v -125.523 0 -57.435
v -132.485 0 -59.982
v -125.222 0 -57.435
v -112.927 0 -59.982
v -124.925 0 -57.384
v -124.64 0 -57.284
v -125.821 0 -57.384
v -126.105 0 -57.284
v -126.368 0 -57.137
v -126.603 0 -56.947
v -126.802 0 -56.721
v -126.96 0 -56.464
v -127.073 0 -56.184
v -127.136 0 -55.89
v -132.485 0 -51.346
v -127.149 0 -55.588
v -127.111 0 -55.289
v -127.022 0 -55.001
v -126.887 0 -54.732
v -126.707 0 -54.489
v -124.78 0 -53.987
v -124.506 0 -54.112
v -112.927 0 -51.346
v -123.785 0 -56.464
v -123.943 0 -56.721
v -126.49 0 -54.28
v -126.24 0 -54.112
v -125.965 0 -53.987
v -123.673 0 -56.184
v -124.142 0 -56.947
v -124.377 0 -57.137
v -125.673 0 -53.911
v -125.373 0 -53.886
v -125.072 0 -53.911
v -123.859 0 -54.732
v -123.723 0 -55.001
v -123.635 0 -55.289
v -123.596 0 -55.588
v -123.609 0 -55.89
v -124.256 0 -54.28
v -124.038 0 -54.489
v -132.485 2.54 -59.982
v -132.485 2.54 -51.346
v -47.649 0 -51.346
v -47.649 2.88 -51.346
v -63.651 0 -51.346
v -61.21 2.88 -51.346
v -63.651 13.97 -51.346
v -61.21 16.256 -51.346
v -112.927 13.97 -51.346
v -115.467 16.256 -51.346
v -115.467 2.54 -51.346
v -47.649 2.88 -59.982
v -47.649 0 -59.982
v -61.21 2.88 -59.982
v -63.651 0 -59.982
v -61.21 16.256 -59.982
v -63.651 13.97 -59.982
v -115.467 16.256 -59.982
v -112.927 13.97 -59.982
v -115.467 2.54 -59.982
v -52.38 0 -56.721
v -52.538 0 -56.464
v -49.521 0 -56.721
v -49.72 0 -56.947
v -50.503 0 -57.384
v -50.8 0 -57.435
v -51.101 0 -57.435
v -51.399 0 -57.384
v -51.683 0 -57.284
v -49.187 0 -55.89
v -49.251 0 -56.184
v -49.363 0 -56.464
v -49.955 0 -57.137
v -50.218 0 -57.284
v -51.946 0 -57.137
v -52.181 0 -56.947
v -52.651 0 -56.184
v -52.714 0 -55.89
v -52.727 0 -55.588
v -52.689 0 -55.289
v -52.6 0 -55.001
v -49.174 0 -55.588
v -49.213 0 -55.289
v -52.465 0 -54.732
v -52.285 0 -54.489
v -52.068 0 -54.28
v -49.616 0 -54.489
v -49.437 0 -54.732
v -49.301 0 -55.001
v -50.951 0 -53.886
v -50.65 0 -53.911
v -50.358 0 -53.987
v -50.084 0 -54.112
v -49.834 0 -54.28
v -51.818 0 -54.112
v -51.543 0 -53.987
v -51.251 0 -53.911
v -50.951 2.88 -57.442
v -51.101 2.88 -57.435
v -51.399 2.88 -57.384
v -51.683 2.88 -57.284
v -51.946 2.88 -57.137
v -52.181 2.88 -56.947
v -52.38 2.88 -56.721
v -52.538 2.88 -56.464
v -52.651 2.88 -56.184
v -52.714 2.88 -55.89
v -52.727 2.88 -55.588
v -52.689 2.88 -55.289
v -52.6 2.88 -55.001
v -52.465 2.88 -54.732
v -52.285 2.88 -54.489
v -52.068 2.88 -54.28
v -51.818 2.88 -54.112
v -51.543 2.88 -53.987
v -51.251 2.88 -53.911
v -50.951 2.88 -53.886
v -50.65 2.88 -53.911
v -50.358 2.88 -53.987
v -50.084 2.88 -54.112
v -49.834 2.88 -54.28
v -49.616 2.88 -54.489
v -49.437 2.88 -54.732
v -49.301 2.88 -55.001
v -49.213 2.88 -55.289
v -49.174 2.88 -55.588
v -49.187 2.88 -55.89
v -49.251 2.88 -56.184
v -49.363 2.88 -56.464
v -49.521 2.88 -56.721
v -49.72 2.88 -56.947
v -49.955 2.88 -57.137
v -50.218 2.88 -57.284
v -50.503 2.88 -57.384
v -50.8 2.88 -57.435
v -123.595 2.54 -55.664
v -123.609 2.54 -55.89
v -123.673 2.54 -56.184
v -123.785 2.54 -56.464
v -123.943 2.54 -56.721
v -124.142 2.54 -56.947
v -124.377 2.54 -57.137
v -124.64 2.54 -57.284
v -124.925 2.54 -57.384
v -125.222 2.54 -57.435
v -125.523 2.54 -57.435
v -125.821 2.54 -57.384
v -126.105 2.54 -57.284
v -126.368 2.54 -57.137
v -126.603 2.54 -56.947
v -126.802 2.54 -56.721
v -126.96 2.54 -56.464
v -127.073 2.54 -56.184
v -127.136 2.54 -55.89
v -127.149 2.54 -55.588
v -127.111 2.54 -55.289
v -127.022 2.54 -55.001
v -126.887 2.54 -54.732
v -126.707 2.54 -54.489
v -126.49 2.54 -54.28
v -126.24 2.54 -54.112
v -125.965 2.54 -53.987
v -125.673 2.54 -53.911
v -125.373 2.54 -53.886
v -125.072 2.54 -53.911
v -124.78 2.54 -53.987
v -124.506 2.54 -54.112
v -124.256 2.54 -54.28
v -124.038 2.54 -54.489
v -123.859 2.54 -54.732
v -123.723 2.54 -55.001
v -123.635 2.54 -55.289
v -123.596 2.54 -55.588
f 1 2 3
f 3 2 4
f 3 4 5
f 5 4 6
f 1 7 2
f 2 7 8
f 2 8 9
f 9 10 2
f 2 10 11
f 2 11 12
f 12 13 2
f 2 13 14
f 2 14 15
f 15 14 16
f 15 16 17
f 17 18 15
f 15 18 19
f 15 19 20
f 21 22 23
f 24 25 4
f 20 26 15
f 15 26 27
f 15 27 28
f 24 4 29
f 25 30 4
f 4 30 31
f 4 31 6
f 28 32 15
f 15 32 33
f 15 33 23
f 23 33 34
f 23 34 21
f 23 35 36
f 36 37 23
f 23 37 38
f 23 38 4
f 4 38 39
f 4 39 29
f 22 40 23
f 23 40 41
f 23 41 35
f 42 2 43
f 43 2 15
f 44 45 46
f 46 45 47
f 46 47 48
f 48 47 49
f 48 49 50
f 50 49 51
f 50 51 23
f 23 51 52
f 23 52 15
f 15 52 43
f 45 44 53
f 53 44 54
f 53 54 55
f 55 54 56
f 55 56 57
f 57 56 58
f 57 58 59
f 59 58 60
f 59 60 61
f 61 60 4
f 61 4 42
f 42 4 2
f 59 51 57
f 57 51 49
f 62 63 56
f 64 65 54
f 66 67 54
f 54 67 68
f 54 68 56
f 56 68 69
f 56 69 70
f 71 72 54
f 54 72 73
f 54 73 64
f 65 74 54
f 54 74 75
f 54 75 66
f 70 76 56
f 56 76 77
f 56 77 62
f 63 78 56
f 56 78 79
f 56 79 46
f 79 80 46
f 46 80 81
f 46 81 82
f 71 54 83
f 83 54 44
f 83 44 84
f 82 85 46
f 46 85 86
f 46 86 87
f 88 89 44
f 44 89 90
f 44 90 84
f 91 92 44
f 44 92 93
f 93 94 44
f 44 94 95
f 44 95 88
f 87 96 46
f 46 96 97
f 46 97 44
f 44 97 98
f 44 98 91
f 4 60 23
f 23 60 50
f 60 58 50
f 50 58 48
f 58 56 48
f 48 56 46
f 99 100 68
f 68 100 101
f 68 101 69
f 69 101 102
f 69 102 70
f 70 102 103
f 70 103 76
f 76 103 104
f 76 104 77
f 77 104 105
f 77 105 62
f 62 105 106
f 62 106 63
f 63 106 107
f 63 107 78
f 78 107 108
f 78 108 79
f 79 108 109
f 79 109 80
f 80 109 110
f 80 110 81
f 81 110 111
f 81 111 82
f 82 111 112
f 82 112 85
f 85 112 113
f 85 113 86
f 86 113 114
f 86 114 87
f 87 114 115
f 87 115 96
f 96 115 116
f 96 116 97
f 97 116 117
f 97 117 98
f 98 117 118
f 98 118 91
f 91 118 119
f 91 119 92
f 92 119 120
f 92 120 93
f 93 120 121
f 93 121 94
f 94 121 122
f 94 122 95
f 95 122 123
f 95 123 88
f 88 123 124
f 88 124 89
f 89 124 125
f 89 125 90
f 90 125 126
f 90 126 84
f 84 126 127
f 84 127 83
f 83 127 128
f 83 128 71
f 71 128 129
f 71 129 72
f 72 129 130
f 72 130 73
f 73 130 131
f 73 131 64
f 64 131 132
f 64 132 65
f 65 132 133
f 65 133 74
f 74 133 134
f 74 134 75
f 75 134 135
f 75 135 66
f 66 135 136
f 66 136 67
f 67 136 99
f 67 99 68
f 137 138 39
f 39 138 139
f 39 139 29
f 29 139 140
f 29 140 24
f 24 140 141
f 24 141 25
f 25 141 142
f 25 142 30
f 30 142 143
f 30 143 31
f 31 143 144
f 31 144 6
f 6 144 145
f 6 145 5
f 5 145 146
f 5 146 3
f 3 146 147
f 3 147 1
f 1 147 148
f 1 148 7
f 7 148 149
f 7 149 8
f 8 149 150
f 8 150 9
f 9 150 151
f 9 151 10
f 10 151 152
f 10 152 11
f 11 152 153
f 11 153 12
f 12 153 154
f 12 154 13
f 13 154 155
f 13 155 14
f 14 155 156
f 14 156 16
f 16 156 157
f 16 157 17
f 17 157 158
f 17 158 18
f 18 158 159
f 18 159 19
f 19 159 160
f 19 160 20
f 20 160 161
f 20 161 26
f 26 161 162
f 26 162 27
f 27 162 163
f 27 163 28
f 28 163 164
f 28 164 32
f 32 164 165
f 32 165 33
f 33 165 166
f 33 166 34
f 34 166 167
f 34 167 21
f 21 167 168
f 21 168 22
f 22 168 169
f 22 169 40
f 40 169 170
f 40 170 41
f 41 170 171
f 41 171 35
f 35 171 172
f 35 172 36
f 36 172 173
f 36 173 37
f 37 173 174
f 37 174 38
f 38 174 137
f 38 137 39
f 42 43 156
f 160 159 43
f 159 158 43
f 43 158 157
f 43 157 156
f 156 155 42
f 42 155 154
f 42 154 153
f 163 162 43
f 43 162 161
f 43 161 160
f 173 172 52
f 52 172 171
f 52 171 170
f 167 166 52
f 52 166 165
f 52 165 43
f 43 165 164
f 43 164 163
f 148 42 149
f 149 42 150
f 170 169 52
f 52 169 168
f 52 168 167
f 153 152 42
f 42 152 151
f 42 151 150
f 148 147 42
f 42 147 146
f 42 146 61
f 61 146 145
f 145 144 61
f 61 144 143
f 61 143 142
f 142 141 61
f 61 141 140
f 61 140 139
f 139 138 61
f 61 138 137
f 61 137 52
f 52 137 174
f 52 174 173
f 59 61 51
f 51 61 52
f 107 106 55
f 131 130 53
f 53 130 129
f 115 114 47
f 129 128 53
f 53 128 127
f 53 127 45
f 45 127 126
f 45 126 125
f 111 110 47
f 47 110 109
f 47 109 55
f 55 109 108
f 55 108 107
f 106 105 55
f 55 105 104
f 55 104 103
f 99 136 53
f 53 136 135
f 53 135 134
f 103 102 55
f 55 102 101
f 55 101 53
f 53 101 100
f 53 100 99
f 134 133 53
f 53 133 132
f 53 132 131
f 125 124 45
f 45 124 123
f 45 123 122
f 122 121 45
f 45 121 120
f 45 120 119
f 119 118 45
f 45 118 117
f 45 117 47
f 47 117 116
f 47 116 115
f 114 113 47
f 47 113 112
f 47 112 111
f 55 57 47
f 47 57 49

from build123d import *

# Parameters (mm, degrees)
SKETCH1_W           = 84.836
SKETCH1_H           = 8.636
BOSS_EXTRUDE1_DEPTH = 16.256
SKETCH2_W           = 49.276
SKETCH2_H           = 13.97
CUT_EXTRUDE1_DEPTH  = 134.757308654
SKETCH3_R           = 1.778
CUT_EXTRUDE2_DEPTH  = 147.33606739
SKETCH4_W           = 17.018
SKETCH4_H           = 13.716
SKETCH4_W_2         = 13.561760772
SKETCH4_H_2         = 13.376292463
CUT_EXTRUDE3_DEPTH  = 134.757308654


with BuildPart() as part:
    # Sketch1 → Boss-Extrude1 (new body)
    with BuildSketch(Plane(origin=(0, 0, 0), x_dir=(1, 0, 0), z_dir=(0, 1, 0))):
        with Locations((-90.066639058, 55.663726359)):
            Rectangle(SKETCH1_W, SKETCH1_H)
    extrude(amount=BOSS_EXTRUDE1_DEPTH)

    # Sketch2 → Cut-Extrude1 (cut, through all)
    with BuildSketch(Plane.XY.offset(-51.345726359)):
        with Locations((-88.288639058, 6.985)):
            Rectangle(SKETCH2_W, SKETCH2_H)
    extrude(amount=-CUT_EXTRUDE1_DEPTH, mode=Mode.SUBTRACT)

    # Sketch3 → Cut-Extrude2 (cut, through all)
    with BuildSketch(Plane(origin=(0, 16.256, 0), x_dir=(1, 0, 0), z_dir=(0, 1, 0))):
        with Locations(Location((-50.950639058, 55.663726359, 0), (0, 0, 270))):
            Circle(SKETCH3_R)
        with Locations(Location((-125.372639058, 55.663726359, 0), (0, 0, 270))):
            Circle(SKETCH3_R)
    extrude(amount=-CUT_EXTRUDE2_DEPTH, mode=Mode.SUBTRACT)

    # Sketch4 → Cut-Extrude3 (cut, through all)
    with BuildSketch(Plane.XY.offset(-51.345726359)):
        with Locations((-123.975639058, 9.398)):
            Rectangle(SKETCH4_W, SKETCH4_H)
        with Locations((-54.429519444, 9.567853769)):
            Rectangle(SKETCH4_W_2, SKETCH4_H_2)
    extrude(amount=-CUT_EXTRUDE3_DEPTH, mode=Mode.SUBTRACT)


solid = part.part
